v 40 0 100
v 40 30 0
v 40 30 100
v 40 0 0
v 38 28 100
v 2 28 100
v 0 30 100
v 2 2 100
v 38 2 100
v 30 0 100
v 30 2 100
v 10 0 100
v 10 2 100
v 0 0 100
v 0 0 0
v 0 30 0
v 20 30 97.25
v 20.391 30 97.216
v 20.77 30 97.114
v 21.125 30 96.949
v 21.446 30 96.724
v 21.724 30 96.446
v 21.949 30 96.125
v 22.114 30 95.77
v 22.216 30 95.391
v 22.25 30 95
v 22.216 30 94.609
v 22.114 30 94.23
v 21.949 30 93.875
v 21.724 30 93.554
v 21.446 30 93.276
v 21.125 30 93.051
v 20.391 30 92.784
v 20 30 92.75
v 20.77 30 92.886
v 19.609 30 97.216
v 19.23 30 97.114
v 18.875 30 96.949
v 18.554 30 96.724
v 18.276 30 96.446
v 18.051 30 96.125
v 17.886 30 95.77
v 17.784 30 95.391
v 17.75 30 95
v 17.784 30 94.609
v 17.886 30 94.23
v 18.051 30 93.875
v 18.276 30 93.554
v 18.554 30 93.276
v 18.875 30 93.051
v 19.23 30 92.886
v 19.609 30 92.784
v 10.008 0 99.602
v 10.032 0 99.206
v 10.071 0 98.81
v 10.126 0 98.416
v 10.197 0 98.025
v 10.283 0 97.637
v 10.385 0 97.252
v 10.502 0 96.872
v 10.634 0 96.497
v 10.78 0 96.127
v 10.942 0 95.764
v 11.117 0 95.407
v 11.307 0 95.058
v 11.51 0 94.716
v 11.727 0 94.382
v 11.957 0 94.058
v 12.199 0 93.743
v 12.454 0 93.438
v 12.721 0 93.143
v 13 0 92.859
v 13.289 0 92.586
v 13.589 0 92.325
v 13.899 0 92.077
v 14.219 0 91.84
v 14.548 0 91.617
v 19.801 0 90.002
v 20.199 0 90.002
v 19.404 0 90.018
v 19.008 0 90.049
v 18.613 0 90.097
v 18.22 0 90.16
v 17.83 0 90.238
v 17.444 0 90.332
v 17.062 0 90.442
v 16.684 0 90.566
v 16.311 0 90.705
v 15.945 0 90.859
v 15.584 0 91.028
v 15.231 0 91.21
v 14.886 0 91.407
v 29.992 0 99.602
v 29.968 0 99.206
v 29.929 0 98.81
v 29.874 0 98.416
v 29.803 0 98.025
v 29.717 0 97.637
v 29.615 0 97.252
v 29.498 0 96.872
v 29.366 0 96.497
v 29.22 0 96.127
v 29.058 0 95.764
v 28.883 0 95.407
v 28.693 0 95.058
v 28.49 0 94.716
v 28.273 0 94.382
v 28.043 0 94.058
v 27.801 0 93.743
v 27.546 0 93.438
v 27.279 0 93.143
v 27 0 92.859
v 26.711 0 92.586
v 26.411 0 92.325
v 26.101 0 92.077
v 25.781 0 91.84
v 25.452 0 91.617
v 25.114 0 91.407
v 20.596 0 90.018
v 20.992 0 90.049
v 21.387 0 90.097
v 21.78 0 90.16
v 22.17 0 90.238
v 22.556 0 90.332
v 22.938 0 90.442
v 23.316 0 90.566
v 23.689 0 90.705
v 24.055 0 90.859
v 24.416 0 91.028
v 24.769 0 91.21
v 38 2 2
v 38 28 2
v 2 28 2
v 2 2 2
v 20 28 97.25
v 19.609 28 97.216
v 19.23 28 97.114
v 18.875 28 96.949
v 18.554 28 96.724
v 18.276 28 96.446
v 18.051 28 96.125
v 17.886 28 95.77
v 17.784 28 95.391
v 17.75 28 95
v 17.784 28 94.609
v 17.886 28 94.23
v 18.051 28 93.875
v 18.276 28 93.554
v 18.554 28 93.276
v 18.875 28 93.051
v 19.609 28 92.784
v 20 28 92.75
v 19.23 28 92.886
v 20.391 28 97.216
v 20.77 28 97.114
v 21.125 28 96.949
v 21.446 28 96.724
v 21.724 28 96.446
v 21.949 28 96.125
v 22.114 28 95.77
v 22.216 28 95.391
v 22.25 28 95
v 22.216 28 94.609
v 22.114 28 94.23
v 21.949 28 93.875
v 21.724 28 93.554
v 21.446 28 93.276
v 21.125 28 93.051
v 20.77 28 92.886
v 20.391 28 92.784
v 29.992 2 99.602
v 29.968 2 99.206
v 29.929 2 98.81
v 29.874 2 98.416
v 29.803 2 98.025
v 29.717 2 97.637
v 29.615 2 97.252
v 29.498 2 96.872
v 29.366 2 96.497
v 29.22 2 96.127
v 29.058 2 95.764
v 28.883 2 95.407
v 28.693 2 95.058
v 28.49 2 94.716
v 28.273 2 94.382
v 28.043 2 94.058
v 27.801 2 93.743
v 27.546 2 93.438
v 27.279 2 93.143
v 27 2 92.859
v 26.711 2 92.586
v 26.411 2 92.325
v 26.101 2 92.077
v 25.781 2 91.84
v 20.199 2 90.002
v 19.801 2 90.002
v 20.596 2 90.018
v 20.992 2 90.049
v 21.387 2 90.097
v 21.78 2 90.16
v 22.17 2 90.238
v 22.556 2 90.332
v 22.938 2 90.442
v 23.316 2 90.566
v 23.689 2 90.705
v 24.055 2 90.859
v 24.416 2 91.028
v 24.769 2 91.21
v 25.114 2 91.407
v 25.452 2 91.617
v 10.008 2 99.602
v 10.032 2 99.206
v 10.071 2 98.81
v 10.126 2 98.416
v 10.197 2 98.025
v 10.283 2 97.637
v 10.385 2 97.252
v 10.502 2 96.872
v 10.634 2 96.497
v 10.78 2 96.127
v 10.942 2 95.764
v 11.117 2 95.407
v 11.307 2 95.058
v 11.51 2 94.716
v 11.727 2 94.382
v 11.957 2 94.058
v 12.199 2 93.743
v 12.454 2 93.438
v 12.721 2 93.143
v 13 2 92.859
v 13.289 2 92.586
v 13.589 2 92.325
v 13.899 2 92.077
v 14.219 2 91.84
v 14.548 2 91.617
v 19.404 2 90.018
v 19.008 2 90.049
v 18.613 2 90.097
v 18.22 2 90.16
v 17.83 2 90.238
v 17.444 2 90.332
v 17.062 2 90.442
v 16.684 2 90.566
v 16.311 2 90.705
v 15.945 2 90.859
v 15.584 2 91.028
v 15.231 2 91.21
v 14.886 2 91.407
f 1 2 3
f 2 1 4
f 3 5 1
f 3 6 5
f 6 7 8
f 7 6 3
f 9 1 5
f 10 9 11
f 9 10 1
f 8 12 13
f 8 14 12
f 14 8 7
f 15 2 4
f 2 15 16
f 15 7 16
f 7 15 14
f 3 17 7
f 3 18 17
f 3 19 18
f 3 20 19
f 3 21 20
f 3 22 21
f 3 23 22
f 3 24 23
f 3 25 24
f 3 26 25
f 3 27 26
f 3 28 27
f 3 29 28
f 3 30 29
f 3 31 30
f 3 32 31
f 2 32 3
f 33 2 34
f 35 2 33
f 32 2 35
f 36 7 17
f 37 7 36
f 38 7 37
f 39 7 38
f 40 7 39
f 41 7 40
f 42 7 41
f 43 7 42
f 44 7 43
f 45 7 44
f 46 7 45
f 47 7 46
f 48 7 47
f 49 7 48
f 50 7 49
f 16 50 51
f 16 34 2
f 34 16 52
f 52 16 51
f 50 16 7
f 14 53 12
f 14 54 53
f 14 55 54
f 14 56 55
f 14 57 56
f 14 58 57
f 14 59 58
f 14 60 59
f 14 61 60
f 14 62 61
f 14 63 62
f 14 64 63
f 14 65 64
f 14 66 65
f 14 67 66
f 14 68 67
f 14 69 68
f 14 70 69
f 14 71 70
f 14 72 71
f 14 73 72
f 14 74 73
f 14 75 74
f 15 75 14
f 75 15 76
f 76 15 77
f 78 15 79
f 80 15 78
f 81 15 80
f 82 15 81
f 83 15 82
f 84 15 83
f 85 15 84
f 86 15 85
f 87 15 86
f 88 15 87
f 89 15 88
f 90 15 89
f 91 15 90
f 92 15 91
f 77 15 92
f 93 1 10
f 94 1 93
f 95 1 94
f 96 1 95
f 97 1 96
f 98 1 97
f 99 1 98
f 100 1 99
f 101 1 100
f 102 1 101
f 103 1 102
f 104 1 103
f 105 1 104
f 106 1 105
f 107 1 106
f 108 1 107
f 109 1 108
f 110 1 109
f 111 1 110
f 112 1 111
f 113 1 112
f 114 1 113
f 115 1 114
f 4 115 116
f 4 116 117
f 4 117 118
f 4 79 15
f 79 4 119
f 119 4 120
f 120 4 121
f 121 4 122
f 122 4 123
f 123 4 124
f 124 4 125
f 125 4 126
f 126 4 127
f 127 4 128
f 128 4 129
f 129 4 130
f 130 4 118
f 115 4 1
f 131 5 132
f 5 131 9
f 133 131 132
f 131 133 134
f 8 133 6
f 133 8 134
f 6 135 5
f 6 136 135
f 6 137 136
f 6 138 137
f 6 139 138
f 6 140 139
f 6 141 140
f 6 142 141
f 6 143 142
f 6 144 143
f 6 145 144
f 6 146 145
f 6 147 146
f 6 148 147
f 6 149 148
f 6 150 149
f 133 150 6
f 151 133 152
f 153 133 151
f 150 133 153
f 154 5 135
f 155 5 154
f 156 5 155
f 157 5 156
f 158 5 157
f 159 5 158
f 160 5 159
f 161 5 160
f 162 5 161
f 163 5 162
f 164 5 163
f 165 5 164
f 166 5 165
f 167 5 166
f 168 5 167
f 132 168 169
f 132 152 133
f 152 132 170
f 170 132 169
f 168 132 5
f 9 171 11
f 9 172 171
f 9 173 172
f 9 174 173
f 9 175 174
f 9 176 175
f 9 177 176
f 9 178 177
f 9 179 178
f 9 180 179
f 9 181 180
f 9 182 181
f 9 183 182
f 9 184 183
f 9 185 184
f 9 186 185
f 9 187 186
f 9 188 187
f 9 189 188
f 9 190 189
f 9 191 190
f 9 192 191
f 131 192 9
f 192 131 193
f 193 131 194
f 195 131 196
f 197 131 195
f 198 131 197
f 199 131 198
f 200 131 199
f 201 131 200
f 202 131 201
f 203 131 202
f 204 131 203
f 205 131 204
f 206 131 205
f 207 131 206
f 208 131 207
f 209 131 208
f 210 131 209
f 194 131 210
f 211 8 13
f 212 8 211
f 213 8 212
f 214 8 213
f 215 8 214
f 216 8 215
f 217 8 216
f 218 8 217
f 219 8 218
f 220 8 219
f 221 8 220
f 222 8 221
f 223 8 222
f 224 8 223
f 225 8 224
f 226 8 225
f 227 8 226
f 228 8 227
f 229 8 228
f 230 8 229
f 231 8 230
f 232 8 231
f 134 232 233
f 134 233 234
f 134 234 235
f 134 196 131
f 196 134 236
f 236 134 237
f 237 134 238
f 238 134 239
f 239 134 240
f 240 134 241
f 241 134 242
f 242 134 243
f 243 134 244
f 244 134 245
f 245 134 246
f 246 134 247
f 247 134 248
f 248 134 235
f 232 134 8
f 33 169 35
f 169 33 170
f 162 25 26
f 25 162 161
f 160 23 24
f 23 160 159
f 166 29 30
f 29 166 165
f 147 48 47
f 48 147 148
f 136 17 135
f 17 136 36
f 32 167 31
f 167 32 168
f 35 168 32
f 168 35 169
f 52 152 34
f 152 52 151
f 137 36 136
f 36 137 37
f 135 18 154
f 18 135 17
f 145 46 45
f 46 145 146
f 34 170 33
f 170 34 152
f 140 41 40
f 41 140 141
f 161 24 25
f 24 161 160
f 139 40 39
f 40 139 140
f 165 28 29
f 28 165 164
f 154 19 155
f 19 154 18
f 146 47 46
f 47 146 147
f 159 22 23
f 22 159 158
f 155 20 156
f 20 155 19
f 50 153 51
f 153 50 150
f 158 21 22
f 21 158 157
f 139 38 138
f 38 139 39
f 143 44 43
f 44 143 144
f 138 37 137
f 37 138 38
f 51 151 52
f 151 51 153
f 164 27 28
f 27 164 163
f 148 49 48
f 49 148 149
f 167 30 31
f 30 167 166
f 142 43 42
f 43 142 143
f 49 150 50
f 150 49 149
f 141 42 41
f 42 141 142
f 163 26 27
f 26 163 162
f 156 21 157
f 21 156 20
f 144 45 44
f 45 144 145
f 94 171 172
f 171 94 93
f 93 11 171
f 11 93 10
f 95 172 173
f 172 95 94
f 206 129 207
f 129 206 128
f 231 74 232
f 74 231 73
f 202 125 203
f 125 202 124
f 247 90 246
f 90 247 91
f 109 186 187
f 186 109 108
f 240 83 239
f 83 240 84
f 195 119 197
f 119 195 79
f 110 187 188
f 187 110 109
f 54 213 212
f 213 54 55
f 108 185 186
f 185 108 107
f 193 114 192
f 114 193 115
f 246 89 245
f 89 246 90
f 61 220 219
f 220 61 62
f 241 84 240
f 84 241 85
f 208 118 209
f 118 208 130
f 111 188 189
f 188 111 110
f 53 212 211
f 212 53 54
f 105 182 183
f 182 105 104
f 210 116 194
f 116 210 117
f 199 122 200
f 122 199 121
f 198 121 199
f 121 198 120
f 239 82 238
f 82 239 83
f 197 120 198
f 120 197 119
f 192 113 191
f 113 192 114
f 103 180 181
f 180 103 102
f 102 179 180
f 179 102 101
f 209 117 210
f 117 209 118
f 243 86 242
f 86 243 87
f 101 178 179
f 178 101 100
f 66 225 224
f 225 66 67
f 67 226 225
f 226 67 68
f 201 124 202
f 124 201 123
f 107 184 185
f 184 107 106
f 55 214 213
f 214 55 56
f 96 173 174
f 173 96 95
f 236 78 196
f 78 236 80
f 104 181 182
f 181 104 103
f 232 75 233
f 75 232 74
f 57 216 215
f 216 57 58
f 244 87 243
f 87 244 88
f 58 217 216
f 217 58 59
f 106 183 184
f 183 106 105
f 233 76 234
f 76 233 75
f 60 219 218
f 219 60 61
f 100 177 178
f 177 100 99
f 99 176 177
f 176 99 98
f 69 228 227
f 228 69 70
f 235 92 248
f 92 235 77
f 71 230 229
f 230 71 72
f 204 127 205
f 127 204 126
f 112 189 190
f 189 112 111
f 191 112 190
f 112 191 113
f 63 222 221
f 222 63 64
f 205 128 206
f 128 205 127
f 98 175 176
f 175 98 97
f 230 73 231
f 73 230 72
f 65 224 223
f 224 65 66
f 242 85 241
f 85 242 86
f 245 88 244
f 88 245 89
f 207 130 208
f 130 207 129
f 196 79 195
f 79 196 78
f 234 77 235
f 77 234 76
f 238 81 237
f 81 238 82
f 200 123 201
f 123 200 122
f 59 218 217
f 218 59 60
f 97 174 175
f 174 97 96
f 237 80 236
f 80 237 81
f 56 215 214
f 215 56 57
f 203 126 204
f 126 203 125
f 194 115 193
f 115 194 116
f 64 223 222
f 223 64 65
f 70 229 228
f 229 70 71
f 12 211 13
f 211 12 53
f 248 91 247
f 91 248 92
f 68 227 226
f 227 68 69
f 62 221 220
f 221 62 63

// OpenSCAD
$fa = 1;
$fs = 0.4;

width = 40;
length = 30;
height = 100;

cutout_rad = 10;
screw_height = cutout_rad / 2;
screw_rad = 4.5 / 2;

shell = 2;

eps = 0.01;

difference() {

    // Outer shell
    cube([width, length, height]);

    // Pencil cutout
    translate([shell, shell, shell]) {
        cube([width - 2 * shell, length - 2 * shell, height - shell + eps]);
    }

    // Screw hole
    translate([width / 2, length + eps, height - screw_height]) {
        rotate([90, 0, 0]) cylinder(shell + 2 * eps, r = screw_rad);
    }

    // Front cutout
    translate([width / 2, -eps, height]) {
        rotate([-90, 0, 0]) cylinder(shell + 2 * eps, r = cutout_rad);
    }

}
